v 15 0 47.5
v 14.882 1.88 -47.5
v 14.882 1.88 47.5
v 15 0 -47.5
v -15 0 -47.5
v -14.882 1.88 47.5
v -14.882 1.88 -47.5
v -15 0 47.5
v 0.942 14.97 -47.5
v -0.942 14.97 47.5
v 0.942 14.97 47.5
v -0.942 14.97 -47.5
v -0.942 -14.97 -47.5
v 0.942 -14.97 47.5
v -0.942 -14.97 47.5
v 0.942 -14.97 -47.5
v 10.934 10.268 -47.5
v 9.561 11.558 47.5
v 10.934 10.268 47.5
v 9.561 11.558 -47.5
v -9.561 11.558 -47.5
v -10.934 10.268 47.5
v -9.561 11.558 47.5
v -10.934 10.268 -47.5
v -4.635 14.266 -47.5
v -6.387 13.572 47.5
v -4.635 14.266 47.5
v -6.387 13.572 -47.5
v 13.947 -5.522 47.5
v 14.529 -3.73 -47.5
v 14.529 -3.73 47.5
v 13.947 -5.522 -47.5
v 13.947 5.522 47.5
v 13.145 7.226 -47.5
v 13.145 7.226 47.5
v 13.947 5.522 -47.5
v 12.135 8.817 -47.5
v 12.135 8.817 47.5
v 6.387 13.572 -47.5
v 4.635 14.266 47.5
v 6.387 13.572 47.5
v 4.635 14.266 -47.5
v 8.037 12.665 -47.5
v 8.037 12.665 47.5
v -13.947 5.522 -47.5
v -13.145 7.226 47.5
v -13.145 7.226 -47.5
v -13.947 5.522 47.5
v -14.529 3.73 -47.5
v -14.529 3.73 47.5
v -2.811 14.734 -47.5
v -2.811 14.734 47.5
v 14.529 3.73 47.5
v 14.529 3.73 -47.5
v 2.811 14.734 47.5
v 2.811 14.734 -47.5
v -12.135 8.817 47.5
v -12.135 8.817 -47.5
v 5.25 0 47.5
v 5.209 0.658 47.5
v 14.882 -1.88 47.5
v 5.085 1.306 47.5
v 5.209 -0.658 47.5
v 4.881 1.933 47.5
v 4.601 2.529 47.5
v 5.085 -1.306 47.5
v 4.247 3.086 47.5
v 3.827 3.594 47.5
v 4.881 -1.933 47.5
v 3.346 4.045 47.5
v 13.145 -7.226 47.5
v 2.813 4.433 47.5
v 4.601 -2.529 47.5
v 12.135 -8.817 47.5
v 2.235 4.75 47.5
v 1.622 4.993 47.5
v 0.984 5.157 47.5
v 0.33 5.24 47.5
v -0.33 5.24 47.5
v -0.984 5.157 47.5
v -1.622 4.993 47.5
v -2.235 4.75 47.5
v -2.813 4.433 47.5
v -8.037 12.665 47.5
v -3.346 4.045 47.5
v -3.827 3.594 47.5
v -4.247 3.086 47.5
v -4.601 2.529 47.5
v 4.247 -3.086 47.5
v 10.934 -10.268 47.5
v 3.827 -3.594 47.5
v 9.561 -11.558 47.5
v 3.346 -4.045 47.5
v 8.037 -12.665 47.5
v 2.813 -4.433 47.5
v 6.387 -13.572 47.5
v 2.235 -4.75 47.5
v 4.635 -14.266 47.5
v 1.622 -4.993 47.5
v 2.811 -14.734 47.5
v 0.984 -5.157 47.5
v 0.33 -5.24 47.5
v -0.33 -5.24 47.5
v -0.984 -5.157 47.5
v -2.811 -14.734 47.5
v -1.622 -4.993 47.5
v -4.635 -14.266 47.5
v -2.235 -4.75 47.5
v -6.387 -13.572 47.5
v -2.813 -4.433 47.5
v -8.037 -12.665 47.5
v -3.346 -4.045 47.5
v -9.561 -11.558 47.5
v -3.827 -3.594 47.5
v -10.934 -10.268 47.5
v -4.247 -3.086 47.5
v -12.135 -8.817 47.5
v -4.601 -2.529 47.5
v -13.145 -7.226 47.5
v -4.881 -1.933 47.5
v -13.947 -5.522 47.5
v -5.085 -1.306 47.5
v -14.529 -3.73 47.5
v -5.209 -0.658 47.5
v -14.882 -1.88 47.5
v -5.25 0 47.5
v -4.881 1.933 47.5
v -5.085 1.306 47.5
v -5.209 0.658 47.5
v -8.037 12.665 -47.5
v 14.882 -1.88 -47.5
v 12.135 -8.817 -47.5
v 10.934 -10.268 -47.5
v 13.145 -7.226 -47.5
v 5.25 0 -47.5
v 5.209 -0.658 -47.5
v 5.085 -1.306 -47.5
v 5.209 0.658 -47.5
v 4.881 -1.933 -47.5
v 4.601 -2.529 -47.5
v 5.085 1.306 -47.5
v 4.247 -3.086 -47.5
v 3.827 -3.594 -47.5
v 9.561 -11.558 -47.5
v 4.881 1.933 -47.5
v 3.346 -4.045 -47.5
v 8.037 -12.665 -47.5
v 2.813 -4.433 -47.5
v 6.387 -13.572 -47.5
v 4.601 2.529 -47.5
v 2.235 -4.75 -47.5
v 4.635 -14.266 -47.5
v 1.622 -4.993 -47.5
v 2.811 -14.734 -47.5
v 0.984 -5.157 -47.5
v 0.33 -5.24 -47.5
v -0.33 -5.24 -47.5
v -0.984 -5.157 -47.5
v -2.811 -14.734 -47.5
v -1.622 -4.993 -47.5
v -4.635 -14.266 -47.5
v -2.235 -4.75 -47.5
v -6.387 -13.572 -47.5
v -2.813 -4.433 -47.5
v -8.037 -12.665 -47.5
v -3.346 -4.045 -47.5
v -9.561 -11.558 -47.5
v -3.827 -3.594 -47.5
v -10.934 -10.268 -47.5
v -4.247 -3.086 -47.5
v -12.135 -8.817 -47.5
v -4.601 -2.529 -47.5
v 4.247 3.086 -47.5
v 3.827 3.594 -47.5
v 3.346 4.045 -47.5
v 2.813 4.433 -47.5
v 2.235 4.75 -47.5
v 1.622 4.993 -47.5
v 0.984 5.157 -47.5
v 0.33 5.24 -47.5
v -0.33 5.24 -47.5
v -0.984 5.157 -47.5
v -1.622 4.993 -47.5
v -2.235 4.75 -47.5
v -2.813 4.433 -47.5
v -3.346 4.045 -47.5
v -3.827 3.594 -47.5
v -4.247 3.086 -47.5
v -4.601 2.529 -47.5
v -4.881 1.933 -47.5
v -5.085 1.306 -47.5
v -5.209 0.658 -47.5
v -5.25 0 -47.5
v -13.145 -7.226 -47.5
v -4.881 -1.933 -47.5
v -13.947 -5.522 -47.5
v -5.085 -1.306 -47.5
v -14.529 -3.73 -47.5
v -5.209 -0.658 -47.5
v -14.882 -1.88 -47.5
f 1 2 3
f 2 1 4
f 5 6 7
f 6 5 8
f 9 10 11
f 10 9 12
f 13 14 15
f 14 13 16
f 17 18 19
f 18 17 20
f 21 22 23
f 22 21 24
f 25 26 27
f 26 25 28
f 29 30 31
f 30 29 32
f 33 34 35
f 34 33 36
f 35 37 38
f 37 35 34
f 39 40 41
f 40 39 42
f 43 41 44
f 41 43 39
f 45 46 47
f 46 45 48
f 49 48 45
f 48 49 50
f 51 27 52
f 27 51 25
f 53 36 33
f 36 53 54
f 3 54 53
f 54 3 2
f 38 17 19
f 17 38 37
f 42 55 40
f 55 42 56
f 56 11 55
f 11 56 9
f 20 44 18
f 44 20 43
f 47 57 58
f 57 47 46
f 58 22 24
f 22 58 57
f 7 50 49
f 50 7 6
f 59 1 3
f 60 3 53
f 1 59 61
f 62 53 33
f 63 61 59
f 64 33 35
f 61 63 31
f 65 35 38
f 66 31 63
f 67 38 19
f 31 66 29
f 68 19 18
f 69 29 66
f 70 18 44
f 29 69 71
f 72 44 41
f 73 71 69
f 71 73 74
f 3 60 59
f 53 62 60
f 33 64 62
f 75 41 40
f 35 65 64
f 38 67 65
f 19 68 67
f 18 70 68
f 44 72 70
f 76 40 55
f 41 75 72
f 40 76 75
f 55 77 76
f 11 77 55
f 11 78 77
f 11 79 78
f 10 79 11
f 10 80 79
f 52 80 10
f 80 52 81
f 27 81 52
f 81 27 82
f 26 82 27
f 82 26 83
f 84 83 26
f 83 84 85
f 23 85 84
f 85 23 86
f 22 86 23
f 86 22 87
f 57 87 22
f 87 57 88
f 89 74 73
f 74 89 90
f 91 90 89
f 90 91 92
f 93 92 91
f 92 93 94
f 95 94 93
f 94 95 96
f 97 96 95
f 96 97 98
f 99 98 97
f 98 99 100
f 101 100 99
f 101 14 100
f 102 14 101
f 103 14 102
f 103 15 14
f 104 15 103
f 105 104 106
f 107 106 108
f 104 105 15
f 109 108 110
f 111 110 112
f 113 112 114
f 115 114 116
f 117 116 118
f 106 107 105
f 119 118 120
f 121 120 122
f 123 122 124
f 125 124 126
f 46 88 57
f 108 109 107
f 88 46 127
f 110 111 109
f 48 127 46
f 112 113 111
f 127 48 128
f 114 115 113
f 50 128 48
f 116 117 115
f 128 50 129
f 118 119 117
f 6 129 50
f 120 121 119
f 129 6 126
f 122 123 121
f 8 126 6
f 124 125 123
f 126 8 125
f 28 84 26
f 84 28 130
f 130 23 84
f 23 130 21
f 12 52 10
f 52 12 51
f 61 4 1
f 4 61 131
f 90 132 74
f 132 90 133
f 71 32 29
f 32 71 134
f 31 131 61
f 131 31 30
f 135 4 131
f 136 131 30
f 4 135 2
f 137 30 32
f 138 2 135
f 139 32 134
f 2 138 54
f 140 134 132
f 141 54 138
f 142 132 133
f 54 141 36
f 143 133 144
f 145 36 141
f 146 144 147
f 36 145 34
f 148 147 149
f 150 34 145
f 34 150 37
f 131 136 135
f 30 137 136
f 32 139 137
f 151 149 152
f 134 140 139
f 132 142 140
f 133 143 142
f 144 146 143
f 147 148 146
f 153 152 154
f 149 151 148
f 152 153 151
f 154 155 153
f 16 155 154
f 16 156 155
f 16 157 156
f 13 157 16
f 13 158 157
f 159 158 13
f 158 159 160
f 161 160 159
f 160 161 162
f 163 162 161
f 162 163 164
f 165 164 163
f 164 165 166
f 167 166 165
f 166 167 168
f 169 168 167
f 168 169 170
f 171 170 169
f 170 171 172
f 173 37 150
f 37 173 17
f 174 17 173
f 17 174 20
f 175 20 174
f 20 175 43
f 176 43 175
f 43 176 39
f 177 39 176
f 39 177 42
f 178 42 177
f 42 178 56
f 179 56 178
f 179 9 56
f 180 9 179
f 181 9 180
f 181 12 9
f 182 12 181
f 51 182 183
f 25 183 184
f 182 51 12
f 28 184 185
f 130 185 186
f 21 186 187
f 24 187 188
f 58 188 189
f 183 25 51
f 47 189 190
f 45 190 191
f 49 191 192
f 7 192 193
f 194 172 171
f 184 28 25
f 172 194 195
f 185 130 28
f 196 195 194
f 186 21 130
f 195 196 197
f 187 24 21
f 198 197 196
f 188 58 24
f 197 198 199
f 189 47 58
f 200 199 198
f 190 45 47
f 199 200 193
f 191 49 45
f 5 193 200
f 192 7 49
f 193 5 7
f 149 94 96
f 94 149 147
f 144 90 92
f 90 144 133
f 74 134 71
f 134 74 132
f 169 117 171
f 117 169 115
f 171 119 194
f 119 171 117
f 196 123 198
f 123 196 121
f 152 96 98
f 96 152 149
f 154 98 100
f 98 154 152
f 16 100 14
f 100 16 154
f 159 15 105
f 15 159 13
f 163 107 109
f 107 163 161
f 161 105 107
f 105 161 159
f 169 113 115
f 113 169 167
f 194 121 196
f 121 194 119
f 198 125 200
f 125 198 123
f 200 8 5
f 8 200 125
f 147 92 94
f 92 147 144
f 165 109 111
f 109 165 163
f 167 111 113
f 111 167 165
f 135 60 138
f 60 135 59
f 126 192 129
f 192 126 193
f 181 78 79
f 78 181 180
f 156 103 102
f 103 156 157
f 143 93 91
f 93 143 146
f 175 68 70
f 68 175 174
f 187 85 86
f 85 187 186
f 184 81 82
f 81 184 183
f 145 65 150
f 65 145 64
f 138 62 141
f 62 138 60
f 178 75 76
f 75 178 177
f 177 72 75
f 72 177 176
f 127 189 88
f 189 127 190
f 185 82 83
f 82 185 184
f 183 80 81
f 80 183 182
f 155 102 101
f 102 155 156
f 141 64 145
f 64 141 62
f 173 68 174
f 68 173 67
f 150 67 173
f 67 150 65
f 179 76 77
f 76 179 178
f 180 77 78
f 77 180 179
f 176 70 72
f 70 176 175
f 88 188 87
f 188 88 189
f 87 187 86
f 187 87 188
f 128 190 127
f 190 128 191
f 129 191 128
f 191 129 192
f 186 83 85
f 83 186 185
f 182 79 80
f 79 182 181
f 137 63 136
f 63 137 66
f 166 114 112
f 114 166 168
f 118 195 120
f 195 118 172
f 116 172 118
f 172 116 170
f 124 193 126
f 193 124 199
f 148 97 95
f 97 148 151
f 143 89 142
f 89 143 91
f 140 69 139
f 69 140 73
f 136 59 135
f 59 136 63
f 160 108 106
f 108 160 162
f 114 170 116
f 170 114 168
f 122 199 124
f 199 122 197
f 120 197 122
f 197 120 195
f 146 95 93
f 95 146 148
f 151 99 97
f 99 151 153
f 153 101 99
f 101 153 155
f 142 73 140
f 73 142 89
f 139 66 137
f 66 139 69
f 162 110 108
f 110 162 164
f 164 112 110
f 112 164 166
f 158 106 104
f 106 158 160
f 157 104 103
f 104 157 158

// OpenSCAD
$fn = 50;


difference() {
	union() {
		translate(v = [0, 0, -47.5000000000]) {
			cylinder(h = 95, r = 15.0000000000);
		}
	}
	union() {
		translate(v = [0, 0, -100.0000000000]) {
			cylinder(h = 200, r = 5.2500000000);
		}
	}
}
